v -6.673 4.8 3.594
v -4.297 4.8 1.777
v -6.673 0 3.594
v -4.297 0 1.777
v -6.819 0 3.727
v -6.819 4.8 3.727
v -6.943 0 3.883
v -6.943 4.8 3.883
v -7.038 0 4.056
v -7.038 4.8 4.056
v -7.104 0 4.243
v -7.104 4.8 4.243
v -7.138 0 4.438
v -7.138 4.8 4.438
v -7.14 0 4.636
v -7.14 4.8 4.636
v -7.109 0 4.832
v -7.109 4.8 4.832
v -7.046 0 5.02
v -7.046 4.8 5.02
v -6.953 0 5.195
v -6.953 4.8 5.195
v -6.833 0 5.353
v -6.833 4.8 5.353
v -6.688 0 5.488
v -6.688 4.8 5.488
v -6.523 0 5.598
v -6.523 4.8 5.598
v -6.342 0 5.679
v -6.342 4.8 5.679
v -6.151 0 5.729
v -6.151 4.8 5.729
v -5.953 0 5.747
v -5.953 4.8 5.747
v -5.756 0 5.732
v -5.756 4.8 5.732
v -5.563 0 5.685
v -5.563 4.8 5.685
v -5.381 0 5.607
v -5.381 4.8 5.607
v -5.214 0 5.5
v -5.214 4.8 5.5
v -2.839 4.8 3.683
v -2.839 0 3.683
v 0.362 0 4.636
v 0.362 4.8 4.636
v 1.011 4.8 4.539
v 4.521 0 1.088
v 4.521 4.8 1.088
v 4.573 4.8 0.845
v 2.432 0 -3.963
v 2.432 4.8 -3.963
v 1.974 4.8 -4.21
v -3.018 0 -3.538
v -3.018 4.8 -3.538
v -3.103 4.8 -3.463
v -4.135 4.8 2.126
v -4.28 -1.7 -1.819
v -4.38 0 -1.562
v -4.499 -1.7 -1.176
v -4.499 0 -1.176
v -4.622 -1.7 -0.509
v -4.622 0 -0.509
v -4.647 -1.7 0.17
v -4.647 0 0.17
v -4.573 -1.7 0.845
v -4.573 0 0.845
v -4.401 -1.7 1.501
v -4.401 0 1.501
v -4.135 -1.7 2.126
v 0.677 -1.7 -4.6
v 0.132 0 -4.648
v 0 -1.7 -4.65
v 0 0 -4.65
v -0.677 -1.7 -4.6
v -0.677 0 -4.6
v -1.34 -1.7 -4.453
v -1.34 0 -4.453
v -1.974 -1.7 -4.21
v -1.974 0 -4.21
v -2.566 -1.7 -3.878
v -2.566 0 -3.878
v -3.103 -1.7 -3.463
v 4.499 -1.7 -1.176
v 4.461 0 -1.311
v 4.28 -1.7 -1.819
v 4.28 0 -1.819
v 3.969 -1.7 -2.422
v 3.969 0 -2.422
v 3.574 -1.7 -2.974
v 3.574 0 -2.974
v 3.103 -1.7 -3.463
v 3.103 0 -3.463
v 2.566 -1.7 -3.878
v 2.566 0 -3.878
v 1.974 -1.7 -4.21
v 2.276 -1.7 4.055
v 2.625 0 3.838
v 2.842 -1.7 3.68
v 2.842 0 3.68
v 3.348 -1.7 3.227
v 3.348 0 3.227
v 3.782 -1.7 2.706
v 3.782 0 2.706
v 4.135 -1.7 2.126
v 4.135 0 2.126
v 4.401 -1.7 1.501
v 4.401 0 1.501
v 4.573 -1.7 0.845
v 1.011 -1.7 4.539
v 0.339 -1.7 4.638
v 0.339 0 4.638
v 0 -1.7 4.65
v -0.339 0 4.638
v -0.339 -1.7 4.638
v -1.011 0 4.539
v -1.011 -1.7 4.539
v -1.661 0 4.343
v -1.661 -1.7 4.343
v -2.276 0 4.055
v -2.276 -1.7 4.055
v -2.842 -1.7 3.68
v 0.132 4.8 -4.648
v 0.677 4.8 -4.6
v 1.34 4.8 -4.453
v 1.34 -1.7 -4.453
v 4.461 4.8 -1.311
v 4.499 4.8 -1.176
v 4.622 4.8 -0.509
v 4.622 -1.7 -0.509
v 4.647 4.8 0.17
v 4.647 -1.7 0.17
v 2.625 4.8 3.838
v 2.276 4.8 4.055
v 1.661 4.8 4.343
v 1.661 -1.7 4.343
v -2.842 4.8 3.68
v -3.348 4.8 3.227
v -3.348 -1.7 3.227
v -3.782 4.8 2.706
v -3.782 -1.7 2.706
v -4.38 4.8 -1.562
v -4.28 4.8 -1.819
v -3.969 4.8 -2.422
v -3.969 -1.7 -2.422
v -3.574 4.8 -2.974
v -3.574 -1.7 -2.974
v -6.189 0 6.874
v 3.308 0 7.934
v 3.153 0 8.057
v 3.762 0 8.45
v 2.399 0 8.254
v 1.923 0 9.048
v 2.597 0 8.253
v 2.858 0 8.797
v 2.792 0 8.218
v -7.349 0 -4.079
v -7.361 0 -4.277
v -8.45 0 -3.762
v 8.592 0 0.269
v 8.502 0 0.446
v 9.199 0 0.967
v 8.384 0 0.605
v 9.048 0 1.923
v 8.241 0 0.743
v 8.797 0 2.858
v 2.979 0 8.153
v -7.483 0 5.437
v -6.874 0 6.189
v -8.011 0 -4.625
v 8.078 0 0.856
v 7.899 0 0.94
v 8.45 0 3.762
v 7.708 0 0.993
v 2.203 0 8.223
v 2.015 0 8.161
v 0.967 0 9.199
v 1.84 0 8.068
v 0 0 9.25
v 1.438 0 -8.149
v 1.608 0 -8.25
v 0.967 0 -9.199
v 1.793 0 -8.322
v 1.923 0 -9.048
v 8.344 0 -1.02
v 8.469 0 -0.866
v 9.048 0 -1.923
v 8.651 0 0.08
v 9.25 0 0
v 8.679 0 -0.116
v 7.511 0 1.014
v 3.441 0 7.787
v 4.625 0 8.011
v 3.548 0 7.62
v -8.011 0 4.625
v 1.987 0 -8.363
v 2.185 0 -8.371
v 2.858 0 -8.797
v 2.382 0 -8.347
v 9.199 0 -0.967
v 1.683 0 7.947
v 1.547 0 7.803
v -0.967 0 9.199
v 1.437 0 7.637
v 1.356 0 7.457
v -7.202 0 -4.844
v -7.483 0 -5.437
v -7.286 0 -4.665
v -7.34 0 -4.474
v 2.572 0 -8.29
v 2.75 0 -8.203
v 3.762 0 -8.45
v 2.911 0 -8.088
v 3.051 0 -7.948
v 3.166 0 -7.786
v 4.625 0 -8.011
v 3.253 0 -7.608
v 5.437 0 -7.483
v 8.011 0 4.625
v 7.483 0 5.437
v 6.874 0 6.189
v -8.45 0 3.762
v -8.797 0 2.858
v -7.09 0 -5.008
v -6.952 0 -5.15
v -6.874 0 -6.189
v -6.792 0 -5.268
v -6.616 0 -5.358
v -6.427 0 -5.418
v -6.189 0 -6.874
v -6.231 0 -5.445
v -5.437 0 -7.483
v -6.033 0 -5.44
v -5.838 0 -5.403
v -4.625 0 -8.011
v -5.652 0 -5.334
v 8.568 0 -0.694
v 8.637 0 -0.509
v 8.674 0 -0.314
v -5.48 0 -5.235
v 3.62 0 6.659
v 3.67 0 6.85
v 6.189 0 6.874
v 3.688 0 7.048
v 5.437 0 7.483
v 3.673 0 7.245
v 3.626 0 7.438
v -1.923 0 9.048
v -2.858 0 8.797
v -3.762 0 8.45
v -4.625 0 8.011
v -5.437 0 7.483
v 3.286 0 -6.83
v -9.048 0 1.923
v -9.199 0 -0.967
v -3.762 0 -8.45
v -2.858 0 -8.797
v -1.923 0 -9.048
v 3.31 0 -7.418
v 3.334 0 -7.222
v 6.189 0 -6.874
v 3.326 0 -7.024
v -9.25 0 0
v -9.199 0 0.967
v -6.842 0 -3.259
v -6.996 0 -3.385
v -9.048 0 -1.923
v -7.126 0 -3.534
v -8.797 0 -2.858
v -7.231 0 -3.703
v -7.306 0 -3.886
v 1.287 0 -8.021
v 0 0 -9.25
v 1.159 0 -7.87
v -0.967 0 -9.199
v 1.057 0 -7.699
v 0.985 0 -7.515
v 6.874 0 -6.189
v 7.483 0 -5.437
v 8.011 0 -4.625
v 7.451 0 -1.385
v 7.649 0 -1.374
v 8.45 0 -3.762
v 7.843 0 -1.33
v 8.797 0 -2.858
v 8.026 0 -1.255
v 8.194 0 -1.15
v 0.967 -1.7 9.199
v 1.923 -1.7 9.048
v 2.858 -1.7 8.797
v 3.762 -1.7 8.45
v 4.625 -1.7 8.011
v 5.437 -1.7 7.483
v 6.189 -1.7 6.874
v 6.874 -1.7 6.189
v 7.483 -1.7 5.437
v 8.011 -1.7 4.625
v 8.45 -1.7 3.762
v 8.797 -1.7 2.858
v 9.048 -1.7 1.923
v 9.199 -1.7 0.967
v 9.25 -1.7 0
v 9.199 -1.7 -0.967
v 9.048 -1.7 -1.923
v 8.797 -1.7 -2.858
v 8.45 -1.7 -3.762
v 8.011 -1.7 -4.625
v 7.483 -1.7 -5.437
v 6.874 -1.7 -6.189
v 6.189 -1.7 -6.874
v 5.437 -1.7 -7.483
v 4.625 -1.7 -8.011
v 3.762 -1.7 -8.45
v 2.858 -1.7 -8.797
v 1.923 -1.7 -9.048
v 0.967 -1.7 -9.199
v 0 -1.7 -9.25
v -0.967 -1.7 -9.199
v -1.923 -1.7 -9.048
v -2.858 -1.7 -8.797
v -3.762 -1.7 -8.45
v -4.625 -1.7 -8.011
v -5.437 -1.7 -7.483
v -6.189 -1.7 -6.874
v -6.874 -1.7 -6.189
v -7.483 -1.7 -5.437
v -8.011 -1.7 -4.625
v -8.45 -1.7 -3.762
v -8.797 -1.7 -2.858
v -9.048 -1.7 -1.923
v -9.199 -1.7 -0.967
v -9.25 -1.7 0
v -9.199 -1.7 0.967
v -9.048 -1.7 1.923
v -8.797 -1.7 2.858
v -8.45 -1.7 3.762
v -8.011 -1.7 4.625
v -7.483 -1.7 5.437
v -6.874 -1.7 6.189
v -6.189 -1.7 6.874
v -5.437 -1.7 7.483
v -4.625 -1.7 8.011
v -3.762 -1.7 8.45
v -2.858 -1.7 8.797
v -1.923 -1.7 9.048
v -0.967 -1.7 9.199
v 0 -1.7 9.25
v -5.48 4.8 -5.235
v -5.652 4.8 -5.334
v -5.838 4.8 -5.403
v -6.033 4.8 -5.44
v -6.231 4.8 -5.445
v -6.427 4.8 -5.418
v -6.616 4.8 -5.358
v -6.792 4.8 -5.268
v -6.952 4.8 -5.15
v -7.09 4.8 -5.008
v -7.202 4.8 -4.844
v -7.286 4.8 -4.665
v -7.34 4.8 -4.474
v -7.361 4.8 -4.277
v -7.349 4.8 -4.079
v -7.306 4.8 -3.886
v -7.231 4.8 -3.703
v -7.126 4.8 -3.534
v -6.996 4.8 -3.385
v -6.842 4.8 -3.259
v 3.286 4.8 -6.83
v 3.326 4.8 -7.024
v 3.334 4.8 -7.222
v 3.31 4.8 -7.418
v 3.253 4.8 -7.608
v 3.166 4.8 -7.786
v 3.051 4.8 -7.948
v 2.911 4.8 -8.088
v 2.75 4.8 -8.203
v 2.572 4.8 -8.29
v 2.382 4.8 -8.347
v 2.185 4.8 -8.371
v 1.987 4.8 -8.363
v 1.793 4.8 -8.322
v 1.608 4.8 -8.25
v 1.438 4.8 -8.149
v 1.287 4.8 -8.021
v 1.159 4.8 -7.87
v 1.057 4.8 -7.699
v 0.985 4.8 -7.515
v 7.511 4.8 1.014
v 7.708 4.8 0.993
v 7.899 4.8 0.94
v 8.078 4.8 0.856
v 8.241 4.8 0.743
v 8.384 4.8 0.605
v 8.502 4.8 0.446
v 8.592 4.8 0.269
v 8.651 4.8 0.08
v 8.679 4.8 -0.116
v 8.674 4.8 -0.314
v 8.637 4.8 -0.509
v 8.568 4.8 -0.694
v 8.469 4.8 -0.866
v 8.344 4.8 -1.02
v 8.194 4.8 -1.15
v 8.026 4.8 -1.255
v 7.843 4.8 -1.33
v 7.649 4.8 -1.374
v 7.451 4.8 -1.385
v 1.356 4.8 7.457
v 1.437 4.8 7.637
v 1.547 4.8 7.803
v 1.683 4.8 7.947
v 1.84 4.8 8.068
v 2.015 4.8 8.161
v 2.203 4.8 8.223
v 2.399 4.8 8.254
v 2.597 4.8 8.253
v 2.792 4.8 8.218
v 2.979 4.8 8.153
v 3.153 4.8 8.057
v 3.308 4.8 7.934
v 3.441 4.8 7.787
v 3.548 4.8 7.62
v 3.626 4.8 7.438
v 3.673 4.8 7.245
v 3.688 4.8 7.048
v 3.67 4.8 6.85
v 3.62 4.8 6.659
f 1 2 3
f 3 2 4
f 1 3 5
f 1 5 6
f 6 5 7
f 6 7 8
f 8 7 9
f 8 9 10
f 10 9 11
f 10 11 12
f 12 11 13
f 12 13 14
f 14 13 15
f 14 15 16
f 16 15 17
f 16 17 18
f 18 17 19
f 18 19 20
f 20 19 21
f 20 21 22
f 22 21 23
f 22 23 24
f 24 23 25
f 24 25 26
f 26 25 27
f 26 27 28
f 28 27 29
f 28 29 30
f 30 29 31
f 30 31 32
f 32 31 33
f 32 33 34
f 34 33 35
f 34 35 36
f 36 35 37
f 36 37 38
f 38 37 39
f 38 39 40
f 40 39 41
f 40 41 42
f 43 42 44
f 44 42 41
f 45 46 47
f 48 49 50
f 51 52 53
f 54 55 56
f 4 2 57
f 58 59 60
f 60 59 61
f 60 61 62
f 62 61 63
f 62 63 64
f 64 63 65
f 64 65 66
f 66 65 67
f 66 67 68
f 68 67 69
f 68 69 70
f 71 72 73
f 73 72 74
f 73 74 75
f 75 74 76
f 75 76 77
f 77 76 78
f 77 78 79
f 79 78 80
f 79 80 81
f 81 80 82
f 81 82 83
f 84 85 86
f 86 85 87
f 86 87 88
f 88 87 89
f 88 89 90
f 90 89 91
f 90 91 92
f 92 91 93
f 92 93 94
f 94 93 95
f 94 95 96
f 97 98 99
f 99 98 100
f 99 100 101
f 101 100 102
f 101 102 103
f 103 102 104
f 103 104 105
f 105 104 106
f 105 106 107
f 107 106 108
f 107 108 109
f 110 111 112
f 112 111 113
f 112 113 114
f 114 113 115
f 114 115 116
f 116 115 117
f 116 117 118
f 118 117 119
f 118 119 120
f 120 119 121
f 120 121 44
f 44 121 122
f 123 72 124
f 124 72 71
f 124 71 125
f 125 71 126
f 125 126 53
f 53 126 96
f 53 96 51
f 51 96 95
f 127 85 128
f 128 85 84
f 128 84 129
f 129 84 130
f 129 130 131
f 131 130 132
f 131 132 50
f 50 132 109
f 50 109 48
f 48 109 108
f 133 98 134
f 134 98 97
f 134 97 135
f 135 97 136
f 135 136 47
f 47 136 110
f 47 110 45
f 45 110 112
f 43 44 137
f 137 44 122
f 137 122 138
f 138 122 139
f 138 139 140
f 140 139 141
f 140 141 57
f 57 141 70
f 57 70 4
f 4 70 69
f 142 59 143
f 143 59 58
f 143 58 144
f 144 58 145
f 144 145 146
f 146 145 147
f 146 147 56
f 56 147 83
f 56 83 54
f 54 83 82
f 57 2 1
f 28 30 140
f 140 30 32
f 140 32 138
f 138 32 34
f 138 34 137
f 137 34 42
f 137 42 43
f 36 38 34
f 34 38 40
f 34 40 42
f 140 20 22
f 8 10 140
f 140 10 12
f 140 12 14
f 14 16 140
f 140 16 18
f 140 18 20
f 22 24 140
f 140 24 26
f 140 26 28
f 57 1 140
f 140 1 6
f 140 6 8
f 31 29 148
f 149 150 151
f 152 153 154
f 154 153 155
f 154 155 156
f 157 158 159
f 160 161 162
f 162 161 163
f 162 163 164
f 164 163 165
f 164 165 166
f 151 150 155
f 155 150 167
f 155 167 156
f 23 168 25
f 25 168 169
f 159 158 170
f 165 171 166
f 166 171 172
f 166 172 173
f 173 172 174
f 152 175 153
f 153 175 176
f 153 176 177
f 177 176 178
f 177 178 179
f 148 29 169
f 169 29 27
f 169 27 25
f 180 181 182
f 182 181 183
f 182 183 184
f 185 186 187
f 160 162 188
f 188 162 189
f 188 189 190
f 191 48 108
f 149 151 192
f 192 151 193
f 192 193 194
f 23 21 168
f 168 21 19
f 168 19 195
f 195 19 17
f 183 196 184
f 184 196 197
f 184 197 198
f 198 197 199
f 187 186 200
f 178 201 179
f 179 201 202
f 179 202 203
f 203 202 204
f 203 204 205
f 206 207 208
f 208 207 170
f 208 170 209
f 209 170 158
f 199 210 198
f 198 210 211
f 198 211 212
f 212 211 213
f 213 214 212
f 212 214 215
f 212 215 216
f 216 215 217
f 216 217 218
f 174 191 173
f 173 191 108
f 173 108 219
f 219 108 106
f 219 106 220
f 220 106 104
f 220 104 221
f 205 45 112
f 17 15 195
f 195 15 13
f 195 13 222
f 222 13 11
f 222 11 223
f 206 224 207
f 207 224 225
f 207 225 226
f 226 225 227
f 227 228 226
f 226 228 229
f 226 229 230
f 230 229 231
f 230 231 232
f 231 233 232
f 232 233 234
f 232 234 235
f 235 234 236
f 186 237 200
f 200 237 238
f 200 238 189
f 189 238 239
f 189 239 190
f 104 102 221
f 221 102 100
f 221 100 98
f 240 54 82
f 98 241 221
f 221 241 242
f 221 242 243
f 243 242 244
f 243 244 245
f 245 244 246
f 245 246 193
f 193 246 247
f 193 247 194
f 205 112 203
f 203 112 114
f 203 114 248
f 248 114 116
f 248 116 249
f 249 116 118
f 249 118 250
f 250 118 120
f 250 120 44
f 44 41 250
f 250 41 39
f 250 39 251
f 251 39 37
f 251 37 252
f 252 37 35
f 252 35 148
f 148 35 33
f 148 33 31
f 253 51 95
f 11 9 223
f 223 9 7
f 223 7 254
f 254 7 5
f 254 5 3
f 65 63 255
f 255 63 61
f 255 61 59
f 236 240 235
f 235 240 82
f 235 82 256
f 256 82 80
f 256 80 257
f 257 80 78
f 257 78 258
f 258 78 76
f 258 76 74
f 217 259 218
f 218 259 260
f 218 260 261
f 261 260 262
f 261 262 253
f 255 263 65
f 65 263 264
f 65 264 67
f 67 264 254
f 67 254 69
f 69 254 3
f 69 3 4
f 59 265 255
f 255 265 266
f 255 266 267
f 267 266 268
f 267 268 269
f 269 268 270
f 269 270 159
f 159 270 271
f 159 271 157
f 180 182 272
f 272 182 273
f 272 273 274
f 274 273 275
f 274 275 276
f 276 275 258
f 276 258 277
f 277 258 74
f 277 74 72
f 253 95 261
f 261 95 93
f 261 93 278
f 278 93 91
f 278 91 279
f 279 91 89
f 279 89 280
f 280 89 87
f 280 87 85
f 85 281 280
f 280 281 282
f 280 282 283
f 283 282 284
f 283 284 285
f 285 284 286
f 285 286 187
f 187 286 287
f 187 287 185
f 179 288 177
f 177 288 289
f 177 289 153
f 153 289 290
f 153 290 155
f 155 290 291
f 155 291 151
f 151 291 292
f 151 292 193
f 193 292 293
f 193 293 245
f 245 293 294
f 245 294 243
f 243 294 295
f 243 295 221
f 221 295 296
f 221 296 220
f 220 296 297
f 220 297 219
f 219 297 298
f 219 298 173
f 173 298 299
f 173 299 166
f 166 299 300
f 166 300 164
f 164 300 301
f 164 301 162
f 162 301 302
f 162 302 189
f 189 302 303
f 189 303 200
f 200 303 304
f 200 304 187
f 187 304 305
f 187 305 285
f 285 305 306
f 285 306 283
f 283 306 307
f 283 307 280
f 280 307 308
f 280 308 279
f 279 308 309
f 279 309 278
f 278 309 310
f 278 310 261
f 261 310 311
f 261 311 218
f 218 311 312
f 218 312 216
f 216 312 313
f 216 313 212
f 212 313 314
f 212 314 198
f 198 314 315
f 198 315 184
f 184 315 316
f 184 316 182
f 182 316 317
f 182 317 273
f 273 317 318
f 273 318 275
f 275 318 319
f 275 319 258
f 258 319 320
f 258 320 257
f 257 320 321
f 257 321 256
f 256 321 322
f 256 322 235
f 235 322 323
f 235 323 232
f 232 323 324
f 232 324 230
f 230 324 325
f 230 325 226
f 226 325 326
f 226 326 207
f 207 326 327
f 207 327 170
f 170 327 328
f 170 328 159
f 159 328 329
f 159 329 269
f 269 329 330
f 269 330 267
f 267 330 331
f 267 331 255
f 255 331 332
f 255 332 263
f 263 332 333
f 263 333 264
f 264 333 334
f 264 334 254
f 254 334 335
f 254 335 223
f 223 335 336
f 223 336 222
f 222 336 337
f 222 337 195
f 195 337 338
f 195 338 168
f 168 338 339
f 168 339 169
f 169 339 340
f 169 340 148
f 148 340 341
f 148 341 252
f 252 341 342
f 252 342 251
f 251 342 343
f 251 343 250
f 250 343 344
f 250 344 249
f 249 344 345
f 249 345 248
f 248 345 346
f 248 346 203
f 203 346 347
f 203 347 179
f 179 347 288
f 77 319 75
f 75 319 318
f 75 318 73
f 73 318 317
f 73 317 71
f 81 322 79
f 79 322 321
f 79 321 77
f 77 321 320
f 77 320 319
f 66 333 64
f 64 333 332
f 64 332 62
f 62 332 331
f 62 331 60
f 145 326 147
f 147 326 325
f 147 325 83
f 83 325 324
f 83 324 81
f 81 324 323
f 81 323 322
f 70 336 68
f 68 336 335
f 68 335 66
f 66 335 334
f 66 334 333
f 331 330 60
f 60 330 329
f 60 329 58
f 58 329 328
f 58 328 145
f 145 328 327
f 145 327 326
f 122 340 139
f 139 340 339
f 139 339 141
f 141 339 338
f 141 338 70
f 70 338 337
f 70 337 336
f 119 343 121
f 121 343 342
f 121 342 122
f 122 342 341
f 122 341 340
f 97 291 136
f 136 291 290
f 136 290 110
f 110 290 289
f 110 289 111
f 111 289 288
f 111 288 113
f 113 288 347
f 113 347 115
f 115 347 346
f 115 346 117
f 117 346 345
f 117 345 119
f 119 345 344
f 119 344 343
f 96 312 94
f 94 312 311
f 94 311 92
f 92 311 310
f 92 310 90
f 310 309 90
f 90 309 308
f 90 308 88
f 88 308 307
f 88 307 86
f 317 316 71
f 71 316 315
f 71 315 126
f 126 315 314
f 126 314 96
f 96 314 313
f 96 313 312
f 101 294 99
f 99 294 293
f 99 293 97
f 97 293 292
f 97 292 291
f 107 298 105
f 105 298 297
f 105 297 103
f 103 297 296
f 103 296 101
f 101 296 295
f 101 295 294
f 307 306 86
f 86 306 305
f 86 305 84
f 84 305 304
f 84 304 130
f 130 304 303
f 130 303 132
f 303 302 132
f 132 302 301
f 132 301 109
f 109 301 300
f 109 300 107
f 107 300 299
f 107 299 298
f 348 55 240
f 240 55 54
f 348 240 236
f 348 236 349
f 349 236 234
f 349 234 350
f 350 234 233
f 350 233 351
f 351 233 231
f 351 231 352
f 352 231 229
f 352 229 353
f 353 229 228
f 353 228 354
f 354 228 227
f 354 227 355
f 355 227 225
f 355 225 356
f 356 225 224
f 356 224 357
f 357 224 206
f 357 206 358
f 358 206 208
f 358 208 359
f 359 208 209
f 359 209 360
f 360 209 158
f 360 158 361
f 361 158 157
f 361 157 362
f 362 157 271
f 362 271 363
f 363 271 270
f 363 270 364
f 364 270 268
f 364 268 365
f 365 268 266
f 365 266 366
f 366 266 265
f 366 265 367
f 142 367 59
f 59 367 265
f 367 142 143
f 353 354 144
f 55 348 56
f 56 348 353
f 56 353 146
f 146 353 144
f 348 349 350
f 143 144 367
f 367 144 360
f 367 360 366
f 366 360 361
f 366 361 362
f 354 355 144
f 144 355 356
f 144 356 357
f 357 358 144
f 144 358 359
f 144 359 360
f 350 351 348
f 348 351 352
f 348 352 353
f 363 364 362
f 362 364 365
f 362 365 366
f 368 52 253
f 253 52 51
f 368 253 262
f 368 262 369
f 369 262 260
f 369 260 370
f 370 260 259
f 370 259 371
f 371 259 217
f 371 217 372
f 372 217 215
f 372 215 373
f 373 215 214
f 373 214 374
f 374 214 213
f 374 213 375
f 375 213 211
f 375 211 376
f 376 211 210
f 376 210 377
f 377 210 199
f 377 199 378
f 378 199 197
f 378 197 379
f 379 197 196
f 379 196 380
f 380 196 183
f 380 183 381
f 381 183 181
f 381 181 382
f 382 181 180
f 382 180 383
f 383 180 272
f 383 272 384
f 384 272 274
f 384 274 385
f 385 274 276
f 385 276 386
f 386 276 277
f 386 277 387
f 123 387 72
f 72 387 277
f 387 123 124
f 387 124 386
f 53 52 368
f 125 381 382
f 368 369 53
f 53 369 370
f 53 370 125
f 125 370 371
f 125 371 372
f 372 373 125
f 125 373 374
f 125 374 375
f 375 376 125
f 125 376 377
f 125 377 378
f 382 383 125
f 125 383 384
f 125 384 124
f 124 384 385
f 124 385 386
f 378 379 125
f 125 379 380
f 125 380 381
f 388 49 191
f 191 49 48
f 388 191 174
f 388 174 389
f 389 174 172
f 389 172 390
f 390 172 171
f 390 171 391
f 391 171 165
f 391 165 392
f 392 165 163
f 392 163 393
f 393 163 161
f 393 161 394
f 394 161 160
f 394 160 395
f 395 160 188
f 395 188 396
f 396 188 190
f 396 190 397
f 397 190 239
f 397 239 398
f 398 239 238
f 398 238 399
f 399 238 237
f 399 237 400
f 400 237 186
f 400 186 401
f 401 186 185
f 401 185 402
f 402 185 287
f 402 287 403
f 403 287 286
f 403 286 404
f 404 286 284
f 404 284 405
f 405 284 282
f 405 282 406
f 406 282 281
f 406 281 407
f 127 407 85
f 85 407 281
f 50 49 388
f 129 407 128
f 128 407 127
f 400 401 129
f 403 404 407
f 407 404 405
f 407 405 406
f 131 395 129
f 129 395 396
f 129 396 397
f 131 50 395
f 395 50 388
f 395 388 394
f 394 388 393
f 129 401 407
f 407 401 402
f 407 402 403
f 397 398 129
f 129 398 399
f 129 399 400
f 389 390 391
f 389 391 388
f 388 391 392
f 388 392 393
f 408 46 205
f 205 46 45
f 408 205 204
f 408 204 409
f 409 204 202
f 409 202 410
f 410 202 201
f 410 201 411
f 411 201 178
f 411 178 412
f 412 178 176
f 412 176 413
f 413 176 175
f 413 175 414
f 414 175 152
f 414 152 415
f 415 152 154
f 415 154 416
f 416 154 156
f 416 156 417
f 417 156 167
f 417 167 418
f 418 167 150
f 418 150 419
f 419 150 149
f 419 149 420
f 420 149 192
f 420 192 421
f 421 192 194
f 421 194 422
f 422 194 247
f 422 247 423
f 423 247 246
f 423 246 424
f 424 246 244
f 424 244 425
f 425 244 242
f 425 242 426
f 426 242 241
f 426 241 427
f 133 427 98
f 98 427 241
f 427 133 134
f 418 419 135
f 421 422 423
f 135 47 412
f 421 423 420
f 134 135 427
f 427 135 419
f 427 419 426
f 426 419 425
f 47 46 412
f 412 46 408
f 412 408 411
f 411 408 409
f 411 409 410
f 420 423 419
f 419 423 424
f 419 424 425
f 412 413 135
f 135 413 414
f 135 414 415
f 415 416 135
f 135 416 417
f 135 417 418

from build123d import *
from build123d.topology import SkipClean

# Parameters (mm, degrees)
BOSS_EXTRUDE1_DEPTH   = 4.8
BOSS_EXTRUDE1_2_DEPTH = 4.8
BOSS_EXTRUDE1_3_DEPTH = 4.8
BOSS_EXTRUDE1_4_DEPTH = 4.8
BOSS_EXTRUDE1_5_DEPTH = 4.8
BOSS_EXTRUDE2_START   = -1.7
SKETCH1_3_R           = 9.25
SKETCH1_3_R_2         = 4.65
BOSS_EXTRUDE2_DEPTH   = 1.7


with BuildPart() as part:
    # Sketch1 → Boss-Extrude1 (new body)
    with BuildSketch(Plane(origin=(0, 0, 0), x_dir=(1, 0, 0), z_dir=(0, 1, 0))):
        with BuildLine():
            ThreePointArc((-5.480218714, 5.235321016), (-7.1492914, 4.928406745), (-6.842377129, 3.259334059))
            Line((-6.842377129, 3.259334059), (-4.379874637, 1.561793252))
            ThreePointArc((-4.379874637, 1.561793252), (-3.828474728, 2.63918193), (-3.017716222, 3.537780209))
            Line((-3.017716222, 3.537780209), (-5.480218714, 5.235321016))
        make_face()
    extrude(amount=BOSS_EXTRUDE1_DEPTH)



with BuildPart() as body_2:
    # Sketch1 → Boss-Extrude1 2 (new body)
    with BuildSketch(Plane(origin=(0, 0, 0), x_dir=(1, 0, 0), z_dir=(0, 1, 0))):
        with BuildLine():
            ThreePointArc((-2.838809346, -3.682887658), (-3.693074925, -2.82554377), (-4.297154517, -1.77678447))
            Line((-4.297154517, -1.77678447), (-6.672566882, -3.594194554))
            ThreePointArc((-6.672566882, -3.594194554), (-6.89644589, -5.276418733), (-5.214221711, -5.500297741))
            Line((-5.214221711, -5.500297741), (-2.838809346, -3.682887658))
        make_face()
    extrude(amount=BOSS_EXTRUDE1_2_DEPTH)


with BuildPart() as body_3:
    # Sketch1 → Boss-Extrude1 3 (new body)
    with BuildSketch(Plane(origin=(0, 0, 0), x_dir=(1, 0, 0), z_dir=(0, 1, 0))):
        with BuildLine():
            Line((0.985400081, 7.51467697), (0.131897954, 4.648128971))
            ThreePointArc((0.131897954, 4.648128971), (1.326947418, 4.456647905), (2.432103324, 3.963252884))
            Line((2.432103324, 3.963252884), (3.285605451, 6.829800884))
            ThreePointArc((3.285605451, 6.829800884), (2.47794081, 8.322341612), (0.985400081, 7.51467697))
        make_face()
    extrude(amount=BOSS_EXTRUDE1_3_DEPTH)


with BuildPart() as body_4:
    # Sketch1 → Boss-Extrude1 4 (new body)
    with BuildSketch(Plane(origin=(0, 0, 0), x_dir=(1, 0, 0), z_dir=(0, 1, 0))):
        with BuildLine():
            ThreePointArc((2.625393974, -3.837943001), (1.546028901, -4.385464016), (0.361928675, -4.635893402))
            Line((0.361928675, -4.635893402), (1.356345588, -7.456655412))
            ThreePointArc((1.356345588, -7.456655412), (2.887053438, -8.189412861), (3.619810887, -6.658705012))
            Line((3.619810887, -6.658705012), (2.625393974, -3.837943001))
        make_face()
    extrude(amount=BOSS_EXTRUDE1_4_DEPTH)


with BuildPart() as body_5:
    # Sketch1 → Boss-Extrude1 5 (new body)
    with BuildSketch(Plane(origin=(0, 0, 0), x_dir=(1, 0, 0), z_dir=(0, 1, 0))):
        with BuildLine():
            Line((7.451387872, 1.384991723), (4.461392056, 1.310908436))
            ThreePointArc((4.461392056, 1.310908436), (4.648573334, 0.115177951), (4.52083874, -1.08835522))
            Line((4.52083874, -1.08835522), (7.510834557, -1.014271933))
            ThreePointArc((7.510834557, -1.014271933), (8.680743042, 0.215083237), (7.451387872, 1.384991723))
        make_face()
    extrude(amount=BOSS_EXTRUDE1_5_DEPTH)


with BuildPart() as part_1:
    with SkipClean():  # the faces are left unmerged after this step: merging them gives an invalid solid
        add(part.part)

        add(body_2.part)  # Boss-Extrude2 merges body 2

        add(body_3.part)  # Boss-Extrude2 merges body 3

        add(body_4.part)  # Boss-Extrude2 merges body 4

        add(body_5.part)  # Boss-Extrude2 merges body 5
        # Sketch1<3> → Boss-Extrude2 (add)
        with BuildSketch(Plane(origin=(0, 0, 0), x_dir=(1, 0, 0), z_dir=(0, 1, 0)).offset(BOSS_EXTRUDE2_START)):
            Circle(SKETCH1_3_R)
            Circle(SKETCH1_3_R_2, mode=Mode.SUBTRACT)
        extrude(amount=BOSS_EXTRUDE2_DEPTH)


solid = part_1.part
